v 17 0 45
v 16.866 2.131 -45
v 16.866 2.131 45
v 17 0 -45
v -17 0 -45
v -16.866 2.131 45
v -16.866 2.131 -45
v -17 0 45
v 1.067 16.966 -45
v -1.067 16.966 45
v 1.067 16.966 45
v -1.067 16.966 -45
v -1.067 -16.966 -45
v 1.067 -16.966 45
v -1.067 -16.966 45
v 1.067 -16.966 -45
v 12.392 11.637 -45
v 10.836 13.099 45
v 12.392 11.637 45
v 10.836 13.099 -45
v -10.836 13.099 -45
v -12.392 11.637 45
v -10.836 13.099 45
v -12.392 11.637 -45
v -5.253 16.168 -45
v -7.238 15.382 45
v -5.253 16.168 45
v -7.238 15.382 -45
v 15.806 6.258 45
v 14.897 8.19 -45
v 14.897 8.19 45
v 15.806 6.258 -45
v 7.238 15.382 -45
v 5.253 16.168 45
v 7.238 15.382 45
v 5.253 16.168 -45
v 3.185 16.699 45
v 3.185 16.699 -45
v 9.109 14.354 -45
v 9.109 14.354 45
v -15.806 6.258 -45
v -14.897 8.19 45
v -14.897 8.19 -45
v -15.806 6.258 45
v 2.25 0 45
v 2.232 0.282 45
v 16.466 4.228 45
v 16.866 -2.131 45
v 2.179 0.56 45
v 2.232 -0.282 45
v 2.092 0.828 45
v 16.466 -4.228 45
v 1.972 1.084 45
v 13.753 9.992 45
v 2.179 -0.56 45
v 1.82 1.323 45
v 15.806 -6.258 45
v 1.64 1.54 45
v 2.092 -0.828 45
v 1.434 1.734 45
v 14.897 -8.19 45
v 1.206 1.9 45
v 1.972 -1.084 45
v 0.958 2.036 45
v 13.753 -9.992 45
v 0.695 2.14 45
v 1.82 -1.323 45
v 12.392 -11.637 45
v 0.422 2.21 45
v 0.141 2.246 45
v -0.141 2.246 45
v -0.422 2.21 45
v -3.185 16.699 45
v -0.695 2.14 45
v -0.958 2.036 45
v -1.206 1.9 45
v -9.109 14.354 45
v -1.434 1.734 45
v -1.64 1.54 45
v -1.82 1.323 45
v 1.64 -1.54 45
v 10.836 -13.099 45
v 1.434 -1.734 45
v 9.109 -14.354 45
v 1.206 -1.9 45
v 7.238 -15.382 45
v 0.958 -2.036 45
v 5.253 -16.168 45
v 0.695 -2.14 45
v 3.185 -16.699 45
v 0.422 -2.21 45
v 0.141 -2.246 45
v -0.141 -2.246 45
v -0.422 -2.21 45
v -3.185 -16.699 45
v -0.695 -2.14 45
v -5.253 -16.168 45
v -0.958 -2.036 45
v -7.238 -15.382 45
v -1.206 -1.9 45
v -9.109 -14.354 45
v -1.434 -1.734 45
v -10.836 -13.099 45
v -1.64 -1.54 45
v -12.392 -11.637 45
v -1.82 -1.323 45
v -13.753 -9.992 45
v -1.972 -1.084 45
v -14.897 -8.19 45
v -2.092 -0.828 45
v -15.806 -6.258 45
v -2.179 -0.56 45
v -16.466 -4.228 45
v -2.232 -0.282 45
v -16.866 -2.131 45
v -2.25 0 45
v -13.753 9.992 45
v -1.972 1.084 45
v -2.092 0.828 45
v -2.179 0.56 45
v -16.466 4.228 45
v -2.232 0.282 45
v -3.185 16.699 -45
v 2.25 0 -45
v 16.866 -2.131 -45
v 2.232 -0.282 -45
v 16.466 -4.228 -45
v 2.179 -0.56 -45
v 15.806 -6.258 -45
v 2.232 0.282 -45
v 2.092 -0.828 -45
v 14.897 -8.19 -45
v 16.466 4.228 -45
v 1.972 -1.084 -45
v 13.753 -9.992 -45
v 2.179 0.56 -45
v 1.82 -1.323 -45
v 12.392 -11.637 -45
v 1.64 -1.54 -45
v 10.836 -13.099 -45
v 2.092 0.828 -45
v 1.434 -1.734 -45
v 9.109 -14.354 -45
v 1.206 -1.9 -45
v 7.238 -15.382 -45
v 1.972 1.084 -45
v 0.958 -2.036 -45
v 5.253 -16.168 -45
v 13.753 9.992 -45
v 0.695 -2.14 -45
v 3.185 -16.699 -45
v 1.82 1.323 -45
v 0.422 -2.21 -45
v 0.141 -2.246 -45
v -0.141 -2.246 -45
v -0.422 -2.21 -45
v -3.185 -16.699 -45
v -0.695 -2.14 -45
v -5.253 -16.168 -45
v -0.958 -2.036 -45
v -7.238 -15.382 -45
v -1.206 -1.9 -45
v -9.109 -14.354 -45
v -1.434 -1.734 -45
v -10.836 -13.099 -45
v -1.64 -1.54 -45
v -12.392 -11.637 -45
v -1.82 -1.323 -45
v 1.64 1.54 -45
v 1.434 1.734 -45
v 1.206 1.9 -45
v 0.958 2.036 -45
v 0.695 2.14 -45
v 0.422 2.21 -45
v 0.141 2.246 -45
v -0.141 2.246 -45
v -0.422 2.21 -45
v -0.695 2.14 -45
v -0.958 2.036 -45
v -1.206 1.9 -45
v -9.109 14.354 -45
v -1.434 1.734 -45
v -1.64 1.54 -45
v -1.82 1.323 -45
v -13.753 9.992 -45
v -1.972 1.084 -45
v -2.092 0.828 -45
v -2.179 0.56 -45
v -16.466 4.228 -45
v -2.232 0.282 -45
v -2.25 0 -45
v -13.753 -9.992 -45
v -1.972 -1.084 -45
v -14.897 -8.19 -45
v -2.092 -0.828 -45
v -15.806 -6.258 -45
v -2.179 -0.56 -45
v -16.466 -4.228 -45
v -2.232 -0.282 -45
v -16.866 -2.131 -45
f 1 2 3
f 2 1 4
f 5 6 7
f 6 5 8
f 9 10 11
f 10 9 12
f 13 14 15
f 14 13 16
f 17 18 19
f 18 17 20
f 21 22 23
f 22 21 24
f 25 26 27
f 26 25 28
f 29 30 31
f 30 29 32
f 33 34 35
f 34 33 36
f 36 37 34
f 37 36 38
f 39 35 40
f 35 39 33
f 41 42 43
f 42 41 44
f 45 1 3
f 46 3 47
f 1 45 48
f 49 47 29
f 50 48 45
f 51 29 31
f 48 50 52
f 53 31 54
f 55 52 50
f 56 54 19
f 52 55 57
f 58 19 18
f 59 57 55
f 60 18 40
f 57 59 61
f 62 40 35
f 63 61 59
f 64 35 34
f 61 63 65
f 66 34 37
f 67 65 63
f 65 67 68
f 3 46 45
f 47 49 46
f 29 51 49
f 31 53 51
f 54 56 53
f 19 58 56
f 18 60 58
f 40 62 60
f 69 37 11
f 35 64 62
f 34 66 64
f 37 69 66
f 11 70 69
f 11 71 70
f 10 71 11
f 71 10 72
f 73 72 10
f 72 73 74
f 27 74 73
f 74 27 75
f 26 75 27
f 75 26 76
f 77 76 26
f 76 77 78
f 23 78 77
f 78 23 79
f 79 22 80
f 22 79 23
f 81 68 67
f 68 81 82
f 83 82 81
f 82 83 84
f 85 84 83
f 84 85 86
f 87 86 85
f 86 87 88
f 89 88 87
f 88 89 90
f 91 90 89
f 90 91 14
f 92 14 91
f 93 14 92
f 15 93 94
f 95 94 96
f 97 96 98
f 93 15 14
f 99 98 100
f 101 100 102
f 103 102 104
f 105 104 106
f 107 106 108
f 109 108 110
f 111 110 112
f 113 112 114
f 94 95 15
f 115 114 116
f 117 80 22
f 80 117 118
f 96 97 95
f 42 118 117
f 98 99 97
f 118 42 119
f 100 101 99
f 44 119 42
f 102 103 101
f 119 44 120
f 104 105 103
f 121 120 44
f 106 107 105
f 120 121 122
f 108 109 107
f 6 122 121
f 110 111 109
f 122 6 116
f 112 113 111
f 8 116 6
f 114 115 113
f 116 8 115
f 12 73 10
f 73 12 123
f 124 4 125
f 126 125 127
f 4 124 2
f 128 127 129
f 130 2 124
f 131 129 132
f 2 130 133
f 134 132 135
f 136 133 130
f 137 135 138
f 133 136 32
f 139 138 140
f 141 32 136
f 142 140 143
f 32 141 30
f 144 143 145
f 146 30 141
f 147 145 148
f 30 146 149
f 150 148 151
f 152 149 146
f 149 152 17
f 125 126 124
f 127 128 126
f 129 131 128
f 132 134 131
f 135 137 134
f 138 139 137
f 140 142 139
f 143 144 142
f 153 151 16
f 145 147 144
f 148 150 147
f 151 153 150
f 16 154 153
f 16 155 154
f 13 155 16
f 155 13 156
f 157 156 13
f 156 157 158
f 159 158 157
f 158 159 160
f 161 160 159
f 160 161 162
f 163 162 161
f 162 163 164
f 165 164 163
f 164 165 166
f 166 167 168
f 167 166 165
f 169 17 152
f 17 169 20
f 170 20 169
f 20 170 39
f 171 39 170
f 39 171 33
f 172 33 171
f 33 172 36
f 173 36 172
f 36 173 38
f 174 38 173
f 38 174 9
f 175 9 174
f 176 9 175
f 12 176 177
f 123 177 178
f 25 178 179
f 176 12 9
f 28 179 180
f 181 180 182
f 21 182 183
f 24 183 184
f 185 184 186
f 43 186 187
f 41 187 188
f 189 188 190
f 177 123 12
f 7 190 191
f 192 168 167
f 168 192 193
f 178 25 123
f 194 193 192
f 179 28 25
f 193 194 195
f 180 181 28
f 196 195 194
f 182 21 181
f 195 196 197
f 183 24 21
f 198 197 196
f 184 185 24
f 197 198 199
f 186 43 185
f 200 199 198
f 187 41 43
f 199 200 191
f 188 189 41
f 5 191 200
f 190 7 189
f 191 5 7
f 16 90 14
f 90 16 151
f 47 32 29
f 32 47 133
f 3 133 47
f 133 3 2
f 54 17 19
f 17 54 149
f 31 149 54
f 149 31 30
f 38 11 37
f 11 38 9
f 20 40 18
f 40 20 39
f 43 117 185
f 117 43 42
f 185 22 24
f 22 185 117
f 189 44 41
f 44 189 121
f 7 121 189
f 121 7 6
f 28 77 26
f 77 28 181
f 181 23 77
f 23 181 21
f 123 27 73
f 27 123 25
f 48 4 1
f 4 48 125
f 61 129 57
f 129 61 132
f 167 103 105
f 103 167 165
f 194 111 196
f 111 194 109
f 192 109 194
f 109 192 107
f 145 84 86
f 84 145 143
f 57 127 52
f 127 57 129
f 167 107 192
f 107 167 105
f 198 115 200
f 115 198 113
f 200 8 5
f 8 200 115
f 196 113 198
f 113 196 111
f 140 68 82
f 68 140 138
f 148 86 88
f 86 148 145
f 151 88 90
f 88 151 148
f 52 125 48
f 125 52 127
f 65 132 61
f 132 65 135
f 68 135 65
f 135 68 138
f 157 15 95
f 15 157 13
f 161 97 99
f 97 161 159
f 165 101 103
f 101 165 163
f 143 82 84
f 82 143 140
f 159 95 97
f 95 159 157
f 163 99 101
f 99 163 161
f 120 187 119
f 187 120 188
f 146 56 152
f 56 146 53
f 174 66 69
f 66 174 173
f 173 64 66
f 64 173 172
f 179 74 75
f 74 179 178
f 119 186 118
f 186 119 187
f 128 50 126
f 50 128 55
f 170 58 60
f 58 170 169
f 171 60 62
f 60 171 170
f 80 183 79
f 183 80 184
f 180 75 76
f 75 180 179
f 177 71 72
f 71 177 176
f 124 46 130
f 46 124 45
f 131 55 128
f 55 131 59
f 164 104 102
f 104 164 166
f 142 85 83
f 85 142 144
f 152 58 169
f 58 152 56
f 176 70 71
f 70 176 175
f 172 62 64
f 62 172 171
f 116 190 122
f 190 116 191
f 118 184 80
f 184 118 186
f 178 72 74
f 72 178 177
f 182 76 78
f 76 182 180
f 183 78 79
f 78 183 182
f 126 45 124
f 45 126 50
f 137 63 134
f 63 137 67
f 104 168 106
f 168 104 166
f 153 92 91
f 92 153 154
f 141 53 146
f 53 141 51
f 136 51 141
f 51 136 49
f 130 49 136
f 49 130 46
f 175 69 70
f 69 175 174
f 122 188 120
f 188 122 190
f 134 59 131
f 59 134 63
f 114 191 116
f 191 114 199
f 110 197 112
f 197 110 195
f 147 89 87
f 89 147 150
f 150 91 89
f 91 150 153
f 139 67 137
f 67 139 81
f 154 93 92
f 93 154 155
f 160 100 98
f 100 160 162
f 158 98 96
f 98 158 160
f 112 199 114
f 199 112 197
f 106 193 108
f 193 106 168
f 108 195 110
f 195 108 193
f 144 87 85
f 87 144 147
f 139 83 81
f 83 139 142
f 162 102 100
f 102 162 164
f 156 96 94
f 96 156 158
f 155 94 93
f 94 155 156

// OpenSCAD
$fn = 50;


difference() {
	union() {
		translate(v = [0, 0, -45.0000000000]) {
			cylinder(h = 90, r = 17.0000000000);
		}
	}
	union() {
		translate(v = [0, 0, -100.0000000000]) {
			cylinder(h = 200, r = 2.2500000000);
		}
	}
}
